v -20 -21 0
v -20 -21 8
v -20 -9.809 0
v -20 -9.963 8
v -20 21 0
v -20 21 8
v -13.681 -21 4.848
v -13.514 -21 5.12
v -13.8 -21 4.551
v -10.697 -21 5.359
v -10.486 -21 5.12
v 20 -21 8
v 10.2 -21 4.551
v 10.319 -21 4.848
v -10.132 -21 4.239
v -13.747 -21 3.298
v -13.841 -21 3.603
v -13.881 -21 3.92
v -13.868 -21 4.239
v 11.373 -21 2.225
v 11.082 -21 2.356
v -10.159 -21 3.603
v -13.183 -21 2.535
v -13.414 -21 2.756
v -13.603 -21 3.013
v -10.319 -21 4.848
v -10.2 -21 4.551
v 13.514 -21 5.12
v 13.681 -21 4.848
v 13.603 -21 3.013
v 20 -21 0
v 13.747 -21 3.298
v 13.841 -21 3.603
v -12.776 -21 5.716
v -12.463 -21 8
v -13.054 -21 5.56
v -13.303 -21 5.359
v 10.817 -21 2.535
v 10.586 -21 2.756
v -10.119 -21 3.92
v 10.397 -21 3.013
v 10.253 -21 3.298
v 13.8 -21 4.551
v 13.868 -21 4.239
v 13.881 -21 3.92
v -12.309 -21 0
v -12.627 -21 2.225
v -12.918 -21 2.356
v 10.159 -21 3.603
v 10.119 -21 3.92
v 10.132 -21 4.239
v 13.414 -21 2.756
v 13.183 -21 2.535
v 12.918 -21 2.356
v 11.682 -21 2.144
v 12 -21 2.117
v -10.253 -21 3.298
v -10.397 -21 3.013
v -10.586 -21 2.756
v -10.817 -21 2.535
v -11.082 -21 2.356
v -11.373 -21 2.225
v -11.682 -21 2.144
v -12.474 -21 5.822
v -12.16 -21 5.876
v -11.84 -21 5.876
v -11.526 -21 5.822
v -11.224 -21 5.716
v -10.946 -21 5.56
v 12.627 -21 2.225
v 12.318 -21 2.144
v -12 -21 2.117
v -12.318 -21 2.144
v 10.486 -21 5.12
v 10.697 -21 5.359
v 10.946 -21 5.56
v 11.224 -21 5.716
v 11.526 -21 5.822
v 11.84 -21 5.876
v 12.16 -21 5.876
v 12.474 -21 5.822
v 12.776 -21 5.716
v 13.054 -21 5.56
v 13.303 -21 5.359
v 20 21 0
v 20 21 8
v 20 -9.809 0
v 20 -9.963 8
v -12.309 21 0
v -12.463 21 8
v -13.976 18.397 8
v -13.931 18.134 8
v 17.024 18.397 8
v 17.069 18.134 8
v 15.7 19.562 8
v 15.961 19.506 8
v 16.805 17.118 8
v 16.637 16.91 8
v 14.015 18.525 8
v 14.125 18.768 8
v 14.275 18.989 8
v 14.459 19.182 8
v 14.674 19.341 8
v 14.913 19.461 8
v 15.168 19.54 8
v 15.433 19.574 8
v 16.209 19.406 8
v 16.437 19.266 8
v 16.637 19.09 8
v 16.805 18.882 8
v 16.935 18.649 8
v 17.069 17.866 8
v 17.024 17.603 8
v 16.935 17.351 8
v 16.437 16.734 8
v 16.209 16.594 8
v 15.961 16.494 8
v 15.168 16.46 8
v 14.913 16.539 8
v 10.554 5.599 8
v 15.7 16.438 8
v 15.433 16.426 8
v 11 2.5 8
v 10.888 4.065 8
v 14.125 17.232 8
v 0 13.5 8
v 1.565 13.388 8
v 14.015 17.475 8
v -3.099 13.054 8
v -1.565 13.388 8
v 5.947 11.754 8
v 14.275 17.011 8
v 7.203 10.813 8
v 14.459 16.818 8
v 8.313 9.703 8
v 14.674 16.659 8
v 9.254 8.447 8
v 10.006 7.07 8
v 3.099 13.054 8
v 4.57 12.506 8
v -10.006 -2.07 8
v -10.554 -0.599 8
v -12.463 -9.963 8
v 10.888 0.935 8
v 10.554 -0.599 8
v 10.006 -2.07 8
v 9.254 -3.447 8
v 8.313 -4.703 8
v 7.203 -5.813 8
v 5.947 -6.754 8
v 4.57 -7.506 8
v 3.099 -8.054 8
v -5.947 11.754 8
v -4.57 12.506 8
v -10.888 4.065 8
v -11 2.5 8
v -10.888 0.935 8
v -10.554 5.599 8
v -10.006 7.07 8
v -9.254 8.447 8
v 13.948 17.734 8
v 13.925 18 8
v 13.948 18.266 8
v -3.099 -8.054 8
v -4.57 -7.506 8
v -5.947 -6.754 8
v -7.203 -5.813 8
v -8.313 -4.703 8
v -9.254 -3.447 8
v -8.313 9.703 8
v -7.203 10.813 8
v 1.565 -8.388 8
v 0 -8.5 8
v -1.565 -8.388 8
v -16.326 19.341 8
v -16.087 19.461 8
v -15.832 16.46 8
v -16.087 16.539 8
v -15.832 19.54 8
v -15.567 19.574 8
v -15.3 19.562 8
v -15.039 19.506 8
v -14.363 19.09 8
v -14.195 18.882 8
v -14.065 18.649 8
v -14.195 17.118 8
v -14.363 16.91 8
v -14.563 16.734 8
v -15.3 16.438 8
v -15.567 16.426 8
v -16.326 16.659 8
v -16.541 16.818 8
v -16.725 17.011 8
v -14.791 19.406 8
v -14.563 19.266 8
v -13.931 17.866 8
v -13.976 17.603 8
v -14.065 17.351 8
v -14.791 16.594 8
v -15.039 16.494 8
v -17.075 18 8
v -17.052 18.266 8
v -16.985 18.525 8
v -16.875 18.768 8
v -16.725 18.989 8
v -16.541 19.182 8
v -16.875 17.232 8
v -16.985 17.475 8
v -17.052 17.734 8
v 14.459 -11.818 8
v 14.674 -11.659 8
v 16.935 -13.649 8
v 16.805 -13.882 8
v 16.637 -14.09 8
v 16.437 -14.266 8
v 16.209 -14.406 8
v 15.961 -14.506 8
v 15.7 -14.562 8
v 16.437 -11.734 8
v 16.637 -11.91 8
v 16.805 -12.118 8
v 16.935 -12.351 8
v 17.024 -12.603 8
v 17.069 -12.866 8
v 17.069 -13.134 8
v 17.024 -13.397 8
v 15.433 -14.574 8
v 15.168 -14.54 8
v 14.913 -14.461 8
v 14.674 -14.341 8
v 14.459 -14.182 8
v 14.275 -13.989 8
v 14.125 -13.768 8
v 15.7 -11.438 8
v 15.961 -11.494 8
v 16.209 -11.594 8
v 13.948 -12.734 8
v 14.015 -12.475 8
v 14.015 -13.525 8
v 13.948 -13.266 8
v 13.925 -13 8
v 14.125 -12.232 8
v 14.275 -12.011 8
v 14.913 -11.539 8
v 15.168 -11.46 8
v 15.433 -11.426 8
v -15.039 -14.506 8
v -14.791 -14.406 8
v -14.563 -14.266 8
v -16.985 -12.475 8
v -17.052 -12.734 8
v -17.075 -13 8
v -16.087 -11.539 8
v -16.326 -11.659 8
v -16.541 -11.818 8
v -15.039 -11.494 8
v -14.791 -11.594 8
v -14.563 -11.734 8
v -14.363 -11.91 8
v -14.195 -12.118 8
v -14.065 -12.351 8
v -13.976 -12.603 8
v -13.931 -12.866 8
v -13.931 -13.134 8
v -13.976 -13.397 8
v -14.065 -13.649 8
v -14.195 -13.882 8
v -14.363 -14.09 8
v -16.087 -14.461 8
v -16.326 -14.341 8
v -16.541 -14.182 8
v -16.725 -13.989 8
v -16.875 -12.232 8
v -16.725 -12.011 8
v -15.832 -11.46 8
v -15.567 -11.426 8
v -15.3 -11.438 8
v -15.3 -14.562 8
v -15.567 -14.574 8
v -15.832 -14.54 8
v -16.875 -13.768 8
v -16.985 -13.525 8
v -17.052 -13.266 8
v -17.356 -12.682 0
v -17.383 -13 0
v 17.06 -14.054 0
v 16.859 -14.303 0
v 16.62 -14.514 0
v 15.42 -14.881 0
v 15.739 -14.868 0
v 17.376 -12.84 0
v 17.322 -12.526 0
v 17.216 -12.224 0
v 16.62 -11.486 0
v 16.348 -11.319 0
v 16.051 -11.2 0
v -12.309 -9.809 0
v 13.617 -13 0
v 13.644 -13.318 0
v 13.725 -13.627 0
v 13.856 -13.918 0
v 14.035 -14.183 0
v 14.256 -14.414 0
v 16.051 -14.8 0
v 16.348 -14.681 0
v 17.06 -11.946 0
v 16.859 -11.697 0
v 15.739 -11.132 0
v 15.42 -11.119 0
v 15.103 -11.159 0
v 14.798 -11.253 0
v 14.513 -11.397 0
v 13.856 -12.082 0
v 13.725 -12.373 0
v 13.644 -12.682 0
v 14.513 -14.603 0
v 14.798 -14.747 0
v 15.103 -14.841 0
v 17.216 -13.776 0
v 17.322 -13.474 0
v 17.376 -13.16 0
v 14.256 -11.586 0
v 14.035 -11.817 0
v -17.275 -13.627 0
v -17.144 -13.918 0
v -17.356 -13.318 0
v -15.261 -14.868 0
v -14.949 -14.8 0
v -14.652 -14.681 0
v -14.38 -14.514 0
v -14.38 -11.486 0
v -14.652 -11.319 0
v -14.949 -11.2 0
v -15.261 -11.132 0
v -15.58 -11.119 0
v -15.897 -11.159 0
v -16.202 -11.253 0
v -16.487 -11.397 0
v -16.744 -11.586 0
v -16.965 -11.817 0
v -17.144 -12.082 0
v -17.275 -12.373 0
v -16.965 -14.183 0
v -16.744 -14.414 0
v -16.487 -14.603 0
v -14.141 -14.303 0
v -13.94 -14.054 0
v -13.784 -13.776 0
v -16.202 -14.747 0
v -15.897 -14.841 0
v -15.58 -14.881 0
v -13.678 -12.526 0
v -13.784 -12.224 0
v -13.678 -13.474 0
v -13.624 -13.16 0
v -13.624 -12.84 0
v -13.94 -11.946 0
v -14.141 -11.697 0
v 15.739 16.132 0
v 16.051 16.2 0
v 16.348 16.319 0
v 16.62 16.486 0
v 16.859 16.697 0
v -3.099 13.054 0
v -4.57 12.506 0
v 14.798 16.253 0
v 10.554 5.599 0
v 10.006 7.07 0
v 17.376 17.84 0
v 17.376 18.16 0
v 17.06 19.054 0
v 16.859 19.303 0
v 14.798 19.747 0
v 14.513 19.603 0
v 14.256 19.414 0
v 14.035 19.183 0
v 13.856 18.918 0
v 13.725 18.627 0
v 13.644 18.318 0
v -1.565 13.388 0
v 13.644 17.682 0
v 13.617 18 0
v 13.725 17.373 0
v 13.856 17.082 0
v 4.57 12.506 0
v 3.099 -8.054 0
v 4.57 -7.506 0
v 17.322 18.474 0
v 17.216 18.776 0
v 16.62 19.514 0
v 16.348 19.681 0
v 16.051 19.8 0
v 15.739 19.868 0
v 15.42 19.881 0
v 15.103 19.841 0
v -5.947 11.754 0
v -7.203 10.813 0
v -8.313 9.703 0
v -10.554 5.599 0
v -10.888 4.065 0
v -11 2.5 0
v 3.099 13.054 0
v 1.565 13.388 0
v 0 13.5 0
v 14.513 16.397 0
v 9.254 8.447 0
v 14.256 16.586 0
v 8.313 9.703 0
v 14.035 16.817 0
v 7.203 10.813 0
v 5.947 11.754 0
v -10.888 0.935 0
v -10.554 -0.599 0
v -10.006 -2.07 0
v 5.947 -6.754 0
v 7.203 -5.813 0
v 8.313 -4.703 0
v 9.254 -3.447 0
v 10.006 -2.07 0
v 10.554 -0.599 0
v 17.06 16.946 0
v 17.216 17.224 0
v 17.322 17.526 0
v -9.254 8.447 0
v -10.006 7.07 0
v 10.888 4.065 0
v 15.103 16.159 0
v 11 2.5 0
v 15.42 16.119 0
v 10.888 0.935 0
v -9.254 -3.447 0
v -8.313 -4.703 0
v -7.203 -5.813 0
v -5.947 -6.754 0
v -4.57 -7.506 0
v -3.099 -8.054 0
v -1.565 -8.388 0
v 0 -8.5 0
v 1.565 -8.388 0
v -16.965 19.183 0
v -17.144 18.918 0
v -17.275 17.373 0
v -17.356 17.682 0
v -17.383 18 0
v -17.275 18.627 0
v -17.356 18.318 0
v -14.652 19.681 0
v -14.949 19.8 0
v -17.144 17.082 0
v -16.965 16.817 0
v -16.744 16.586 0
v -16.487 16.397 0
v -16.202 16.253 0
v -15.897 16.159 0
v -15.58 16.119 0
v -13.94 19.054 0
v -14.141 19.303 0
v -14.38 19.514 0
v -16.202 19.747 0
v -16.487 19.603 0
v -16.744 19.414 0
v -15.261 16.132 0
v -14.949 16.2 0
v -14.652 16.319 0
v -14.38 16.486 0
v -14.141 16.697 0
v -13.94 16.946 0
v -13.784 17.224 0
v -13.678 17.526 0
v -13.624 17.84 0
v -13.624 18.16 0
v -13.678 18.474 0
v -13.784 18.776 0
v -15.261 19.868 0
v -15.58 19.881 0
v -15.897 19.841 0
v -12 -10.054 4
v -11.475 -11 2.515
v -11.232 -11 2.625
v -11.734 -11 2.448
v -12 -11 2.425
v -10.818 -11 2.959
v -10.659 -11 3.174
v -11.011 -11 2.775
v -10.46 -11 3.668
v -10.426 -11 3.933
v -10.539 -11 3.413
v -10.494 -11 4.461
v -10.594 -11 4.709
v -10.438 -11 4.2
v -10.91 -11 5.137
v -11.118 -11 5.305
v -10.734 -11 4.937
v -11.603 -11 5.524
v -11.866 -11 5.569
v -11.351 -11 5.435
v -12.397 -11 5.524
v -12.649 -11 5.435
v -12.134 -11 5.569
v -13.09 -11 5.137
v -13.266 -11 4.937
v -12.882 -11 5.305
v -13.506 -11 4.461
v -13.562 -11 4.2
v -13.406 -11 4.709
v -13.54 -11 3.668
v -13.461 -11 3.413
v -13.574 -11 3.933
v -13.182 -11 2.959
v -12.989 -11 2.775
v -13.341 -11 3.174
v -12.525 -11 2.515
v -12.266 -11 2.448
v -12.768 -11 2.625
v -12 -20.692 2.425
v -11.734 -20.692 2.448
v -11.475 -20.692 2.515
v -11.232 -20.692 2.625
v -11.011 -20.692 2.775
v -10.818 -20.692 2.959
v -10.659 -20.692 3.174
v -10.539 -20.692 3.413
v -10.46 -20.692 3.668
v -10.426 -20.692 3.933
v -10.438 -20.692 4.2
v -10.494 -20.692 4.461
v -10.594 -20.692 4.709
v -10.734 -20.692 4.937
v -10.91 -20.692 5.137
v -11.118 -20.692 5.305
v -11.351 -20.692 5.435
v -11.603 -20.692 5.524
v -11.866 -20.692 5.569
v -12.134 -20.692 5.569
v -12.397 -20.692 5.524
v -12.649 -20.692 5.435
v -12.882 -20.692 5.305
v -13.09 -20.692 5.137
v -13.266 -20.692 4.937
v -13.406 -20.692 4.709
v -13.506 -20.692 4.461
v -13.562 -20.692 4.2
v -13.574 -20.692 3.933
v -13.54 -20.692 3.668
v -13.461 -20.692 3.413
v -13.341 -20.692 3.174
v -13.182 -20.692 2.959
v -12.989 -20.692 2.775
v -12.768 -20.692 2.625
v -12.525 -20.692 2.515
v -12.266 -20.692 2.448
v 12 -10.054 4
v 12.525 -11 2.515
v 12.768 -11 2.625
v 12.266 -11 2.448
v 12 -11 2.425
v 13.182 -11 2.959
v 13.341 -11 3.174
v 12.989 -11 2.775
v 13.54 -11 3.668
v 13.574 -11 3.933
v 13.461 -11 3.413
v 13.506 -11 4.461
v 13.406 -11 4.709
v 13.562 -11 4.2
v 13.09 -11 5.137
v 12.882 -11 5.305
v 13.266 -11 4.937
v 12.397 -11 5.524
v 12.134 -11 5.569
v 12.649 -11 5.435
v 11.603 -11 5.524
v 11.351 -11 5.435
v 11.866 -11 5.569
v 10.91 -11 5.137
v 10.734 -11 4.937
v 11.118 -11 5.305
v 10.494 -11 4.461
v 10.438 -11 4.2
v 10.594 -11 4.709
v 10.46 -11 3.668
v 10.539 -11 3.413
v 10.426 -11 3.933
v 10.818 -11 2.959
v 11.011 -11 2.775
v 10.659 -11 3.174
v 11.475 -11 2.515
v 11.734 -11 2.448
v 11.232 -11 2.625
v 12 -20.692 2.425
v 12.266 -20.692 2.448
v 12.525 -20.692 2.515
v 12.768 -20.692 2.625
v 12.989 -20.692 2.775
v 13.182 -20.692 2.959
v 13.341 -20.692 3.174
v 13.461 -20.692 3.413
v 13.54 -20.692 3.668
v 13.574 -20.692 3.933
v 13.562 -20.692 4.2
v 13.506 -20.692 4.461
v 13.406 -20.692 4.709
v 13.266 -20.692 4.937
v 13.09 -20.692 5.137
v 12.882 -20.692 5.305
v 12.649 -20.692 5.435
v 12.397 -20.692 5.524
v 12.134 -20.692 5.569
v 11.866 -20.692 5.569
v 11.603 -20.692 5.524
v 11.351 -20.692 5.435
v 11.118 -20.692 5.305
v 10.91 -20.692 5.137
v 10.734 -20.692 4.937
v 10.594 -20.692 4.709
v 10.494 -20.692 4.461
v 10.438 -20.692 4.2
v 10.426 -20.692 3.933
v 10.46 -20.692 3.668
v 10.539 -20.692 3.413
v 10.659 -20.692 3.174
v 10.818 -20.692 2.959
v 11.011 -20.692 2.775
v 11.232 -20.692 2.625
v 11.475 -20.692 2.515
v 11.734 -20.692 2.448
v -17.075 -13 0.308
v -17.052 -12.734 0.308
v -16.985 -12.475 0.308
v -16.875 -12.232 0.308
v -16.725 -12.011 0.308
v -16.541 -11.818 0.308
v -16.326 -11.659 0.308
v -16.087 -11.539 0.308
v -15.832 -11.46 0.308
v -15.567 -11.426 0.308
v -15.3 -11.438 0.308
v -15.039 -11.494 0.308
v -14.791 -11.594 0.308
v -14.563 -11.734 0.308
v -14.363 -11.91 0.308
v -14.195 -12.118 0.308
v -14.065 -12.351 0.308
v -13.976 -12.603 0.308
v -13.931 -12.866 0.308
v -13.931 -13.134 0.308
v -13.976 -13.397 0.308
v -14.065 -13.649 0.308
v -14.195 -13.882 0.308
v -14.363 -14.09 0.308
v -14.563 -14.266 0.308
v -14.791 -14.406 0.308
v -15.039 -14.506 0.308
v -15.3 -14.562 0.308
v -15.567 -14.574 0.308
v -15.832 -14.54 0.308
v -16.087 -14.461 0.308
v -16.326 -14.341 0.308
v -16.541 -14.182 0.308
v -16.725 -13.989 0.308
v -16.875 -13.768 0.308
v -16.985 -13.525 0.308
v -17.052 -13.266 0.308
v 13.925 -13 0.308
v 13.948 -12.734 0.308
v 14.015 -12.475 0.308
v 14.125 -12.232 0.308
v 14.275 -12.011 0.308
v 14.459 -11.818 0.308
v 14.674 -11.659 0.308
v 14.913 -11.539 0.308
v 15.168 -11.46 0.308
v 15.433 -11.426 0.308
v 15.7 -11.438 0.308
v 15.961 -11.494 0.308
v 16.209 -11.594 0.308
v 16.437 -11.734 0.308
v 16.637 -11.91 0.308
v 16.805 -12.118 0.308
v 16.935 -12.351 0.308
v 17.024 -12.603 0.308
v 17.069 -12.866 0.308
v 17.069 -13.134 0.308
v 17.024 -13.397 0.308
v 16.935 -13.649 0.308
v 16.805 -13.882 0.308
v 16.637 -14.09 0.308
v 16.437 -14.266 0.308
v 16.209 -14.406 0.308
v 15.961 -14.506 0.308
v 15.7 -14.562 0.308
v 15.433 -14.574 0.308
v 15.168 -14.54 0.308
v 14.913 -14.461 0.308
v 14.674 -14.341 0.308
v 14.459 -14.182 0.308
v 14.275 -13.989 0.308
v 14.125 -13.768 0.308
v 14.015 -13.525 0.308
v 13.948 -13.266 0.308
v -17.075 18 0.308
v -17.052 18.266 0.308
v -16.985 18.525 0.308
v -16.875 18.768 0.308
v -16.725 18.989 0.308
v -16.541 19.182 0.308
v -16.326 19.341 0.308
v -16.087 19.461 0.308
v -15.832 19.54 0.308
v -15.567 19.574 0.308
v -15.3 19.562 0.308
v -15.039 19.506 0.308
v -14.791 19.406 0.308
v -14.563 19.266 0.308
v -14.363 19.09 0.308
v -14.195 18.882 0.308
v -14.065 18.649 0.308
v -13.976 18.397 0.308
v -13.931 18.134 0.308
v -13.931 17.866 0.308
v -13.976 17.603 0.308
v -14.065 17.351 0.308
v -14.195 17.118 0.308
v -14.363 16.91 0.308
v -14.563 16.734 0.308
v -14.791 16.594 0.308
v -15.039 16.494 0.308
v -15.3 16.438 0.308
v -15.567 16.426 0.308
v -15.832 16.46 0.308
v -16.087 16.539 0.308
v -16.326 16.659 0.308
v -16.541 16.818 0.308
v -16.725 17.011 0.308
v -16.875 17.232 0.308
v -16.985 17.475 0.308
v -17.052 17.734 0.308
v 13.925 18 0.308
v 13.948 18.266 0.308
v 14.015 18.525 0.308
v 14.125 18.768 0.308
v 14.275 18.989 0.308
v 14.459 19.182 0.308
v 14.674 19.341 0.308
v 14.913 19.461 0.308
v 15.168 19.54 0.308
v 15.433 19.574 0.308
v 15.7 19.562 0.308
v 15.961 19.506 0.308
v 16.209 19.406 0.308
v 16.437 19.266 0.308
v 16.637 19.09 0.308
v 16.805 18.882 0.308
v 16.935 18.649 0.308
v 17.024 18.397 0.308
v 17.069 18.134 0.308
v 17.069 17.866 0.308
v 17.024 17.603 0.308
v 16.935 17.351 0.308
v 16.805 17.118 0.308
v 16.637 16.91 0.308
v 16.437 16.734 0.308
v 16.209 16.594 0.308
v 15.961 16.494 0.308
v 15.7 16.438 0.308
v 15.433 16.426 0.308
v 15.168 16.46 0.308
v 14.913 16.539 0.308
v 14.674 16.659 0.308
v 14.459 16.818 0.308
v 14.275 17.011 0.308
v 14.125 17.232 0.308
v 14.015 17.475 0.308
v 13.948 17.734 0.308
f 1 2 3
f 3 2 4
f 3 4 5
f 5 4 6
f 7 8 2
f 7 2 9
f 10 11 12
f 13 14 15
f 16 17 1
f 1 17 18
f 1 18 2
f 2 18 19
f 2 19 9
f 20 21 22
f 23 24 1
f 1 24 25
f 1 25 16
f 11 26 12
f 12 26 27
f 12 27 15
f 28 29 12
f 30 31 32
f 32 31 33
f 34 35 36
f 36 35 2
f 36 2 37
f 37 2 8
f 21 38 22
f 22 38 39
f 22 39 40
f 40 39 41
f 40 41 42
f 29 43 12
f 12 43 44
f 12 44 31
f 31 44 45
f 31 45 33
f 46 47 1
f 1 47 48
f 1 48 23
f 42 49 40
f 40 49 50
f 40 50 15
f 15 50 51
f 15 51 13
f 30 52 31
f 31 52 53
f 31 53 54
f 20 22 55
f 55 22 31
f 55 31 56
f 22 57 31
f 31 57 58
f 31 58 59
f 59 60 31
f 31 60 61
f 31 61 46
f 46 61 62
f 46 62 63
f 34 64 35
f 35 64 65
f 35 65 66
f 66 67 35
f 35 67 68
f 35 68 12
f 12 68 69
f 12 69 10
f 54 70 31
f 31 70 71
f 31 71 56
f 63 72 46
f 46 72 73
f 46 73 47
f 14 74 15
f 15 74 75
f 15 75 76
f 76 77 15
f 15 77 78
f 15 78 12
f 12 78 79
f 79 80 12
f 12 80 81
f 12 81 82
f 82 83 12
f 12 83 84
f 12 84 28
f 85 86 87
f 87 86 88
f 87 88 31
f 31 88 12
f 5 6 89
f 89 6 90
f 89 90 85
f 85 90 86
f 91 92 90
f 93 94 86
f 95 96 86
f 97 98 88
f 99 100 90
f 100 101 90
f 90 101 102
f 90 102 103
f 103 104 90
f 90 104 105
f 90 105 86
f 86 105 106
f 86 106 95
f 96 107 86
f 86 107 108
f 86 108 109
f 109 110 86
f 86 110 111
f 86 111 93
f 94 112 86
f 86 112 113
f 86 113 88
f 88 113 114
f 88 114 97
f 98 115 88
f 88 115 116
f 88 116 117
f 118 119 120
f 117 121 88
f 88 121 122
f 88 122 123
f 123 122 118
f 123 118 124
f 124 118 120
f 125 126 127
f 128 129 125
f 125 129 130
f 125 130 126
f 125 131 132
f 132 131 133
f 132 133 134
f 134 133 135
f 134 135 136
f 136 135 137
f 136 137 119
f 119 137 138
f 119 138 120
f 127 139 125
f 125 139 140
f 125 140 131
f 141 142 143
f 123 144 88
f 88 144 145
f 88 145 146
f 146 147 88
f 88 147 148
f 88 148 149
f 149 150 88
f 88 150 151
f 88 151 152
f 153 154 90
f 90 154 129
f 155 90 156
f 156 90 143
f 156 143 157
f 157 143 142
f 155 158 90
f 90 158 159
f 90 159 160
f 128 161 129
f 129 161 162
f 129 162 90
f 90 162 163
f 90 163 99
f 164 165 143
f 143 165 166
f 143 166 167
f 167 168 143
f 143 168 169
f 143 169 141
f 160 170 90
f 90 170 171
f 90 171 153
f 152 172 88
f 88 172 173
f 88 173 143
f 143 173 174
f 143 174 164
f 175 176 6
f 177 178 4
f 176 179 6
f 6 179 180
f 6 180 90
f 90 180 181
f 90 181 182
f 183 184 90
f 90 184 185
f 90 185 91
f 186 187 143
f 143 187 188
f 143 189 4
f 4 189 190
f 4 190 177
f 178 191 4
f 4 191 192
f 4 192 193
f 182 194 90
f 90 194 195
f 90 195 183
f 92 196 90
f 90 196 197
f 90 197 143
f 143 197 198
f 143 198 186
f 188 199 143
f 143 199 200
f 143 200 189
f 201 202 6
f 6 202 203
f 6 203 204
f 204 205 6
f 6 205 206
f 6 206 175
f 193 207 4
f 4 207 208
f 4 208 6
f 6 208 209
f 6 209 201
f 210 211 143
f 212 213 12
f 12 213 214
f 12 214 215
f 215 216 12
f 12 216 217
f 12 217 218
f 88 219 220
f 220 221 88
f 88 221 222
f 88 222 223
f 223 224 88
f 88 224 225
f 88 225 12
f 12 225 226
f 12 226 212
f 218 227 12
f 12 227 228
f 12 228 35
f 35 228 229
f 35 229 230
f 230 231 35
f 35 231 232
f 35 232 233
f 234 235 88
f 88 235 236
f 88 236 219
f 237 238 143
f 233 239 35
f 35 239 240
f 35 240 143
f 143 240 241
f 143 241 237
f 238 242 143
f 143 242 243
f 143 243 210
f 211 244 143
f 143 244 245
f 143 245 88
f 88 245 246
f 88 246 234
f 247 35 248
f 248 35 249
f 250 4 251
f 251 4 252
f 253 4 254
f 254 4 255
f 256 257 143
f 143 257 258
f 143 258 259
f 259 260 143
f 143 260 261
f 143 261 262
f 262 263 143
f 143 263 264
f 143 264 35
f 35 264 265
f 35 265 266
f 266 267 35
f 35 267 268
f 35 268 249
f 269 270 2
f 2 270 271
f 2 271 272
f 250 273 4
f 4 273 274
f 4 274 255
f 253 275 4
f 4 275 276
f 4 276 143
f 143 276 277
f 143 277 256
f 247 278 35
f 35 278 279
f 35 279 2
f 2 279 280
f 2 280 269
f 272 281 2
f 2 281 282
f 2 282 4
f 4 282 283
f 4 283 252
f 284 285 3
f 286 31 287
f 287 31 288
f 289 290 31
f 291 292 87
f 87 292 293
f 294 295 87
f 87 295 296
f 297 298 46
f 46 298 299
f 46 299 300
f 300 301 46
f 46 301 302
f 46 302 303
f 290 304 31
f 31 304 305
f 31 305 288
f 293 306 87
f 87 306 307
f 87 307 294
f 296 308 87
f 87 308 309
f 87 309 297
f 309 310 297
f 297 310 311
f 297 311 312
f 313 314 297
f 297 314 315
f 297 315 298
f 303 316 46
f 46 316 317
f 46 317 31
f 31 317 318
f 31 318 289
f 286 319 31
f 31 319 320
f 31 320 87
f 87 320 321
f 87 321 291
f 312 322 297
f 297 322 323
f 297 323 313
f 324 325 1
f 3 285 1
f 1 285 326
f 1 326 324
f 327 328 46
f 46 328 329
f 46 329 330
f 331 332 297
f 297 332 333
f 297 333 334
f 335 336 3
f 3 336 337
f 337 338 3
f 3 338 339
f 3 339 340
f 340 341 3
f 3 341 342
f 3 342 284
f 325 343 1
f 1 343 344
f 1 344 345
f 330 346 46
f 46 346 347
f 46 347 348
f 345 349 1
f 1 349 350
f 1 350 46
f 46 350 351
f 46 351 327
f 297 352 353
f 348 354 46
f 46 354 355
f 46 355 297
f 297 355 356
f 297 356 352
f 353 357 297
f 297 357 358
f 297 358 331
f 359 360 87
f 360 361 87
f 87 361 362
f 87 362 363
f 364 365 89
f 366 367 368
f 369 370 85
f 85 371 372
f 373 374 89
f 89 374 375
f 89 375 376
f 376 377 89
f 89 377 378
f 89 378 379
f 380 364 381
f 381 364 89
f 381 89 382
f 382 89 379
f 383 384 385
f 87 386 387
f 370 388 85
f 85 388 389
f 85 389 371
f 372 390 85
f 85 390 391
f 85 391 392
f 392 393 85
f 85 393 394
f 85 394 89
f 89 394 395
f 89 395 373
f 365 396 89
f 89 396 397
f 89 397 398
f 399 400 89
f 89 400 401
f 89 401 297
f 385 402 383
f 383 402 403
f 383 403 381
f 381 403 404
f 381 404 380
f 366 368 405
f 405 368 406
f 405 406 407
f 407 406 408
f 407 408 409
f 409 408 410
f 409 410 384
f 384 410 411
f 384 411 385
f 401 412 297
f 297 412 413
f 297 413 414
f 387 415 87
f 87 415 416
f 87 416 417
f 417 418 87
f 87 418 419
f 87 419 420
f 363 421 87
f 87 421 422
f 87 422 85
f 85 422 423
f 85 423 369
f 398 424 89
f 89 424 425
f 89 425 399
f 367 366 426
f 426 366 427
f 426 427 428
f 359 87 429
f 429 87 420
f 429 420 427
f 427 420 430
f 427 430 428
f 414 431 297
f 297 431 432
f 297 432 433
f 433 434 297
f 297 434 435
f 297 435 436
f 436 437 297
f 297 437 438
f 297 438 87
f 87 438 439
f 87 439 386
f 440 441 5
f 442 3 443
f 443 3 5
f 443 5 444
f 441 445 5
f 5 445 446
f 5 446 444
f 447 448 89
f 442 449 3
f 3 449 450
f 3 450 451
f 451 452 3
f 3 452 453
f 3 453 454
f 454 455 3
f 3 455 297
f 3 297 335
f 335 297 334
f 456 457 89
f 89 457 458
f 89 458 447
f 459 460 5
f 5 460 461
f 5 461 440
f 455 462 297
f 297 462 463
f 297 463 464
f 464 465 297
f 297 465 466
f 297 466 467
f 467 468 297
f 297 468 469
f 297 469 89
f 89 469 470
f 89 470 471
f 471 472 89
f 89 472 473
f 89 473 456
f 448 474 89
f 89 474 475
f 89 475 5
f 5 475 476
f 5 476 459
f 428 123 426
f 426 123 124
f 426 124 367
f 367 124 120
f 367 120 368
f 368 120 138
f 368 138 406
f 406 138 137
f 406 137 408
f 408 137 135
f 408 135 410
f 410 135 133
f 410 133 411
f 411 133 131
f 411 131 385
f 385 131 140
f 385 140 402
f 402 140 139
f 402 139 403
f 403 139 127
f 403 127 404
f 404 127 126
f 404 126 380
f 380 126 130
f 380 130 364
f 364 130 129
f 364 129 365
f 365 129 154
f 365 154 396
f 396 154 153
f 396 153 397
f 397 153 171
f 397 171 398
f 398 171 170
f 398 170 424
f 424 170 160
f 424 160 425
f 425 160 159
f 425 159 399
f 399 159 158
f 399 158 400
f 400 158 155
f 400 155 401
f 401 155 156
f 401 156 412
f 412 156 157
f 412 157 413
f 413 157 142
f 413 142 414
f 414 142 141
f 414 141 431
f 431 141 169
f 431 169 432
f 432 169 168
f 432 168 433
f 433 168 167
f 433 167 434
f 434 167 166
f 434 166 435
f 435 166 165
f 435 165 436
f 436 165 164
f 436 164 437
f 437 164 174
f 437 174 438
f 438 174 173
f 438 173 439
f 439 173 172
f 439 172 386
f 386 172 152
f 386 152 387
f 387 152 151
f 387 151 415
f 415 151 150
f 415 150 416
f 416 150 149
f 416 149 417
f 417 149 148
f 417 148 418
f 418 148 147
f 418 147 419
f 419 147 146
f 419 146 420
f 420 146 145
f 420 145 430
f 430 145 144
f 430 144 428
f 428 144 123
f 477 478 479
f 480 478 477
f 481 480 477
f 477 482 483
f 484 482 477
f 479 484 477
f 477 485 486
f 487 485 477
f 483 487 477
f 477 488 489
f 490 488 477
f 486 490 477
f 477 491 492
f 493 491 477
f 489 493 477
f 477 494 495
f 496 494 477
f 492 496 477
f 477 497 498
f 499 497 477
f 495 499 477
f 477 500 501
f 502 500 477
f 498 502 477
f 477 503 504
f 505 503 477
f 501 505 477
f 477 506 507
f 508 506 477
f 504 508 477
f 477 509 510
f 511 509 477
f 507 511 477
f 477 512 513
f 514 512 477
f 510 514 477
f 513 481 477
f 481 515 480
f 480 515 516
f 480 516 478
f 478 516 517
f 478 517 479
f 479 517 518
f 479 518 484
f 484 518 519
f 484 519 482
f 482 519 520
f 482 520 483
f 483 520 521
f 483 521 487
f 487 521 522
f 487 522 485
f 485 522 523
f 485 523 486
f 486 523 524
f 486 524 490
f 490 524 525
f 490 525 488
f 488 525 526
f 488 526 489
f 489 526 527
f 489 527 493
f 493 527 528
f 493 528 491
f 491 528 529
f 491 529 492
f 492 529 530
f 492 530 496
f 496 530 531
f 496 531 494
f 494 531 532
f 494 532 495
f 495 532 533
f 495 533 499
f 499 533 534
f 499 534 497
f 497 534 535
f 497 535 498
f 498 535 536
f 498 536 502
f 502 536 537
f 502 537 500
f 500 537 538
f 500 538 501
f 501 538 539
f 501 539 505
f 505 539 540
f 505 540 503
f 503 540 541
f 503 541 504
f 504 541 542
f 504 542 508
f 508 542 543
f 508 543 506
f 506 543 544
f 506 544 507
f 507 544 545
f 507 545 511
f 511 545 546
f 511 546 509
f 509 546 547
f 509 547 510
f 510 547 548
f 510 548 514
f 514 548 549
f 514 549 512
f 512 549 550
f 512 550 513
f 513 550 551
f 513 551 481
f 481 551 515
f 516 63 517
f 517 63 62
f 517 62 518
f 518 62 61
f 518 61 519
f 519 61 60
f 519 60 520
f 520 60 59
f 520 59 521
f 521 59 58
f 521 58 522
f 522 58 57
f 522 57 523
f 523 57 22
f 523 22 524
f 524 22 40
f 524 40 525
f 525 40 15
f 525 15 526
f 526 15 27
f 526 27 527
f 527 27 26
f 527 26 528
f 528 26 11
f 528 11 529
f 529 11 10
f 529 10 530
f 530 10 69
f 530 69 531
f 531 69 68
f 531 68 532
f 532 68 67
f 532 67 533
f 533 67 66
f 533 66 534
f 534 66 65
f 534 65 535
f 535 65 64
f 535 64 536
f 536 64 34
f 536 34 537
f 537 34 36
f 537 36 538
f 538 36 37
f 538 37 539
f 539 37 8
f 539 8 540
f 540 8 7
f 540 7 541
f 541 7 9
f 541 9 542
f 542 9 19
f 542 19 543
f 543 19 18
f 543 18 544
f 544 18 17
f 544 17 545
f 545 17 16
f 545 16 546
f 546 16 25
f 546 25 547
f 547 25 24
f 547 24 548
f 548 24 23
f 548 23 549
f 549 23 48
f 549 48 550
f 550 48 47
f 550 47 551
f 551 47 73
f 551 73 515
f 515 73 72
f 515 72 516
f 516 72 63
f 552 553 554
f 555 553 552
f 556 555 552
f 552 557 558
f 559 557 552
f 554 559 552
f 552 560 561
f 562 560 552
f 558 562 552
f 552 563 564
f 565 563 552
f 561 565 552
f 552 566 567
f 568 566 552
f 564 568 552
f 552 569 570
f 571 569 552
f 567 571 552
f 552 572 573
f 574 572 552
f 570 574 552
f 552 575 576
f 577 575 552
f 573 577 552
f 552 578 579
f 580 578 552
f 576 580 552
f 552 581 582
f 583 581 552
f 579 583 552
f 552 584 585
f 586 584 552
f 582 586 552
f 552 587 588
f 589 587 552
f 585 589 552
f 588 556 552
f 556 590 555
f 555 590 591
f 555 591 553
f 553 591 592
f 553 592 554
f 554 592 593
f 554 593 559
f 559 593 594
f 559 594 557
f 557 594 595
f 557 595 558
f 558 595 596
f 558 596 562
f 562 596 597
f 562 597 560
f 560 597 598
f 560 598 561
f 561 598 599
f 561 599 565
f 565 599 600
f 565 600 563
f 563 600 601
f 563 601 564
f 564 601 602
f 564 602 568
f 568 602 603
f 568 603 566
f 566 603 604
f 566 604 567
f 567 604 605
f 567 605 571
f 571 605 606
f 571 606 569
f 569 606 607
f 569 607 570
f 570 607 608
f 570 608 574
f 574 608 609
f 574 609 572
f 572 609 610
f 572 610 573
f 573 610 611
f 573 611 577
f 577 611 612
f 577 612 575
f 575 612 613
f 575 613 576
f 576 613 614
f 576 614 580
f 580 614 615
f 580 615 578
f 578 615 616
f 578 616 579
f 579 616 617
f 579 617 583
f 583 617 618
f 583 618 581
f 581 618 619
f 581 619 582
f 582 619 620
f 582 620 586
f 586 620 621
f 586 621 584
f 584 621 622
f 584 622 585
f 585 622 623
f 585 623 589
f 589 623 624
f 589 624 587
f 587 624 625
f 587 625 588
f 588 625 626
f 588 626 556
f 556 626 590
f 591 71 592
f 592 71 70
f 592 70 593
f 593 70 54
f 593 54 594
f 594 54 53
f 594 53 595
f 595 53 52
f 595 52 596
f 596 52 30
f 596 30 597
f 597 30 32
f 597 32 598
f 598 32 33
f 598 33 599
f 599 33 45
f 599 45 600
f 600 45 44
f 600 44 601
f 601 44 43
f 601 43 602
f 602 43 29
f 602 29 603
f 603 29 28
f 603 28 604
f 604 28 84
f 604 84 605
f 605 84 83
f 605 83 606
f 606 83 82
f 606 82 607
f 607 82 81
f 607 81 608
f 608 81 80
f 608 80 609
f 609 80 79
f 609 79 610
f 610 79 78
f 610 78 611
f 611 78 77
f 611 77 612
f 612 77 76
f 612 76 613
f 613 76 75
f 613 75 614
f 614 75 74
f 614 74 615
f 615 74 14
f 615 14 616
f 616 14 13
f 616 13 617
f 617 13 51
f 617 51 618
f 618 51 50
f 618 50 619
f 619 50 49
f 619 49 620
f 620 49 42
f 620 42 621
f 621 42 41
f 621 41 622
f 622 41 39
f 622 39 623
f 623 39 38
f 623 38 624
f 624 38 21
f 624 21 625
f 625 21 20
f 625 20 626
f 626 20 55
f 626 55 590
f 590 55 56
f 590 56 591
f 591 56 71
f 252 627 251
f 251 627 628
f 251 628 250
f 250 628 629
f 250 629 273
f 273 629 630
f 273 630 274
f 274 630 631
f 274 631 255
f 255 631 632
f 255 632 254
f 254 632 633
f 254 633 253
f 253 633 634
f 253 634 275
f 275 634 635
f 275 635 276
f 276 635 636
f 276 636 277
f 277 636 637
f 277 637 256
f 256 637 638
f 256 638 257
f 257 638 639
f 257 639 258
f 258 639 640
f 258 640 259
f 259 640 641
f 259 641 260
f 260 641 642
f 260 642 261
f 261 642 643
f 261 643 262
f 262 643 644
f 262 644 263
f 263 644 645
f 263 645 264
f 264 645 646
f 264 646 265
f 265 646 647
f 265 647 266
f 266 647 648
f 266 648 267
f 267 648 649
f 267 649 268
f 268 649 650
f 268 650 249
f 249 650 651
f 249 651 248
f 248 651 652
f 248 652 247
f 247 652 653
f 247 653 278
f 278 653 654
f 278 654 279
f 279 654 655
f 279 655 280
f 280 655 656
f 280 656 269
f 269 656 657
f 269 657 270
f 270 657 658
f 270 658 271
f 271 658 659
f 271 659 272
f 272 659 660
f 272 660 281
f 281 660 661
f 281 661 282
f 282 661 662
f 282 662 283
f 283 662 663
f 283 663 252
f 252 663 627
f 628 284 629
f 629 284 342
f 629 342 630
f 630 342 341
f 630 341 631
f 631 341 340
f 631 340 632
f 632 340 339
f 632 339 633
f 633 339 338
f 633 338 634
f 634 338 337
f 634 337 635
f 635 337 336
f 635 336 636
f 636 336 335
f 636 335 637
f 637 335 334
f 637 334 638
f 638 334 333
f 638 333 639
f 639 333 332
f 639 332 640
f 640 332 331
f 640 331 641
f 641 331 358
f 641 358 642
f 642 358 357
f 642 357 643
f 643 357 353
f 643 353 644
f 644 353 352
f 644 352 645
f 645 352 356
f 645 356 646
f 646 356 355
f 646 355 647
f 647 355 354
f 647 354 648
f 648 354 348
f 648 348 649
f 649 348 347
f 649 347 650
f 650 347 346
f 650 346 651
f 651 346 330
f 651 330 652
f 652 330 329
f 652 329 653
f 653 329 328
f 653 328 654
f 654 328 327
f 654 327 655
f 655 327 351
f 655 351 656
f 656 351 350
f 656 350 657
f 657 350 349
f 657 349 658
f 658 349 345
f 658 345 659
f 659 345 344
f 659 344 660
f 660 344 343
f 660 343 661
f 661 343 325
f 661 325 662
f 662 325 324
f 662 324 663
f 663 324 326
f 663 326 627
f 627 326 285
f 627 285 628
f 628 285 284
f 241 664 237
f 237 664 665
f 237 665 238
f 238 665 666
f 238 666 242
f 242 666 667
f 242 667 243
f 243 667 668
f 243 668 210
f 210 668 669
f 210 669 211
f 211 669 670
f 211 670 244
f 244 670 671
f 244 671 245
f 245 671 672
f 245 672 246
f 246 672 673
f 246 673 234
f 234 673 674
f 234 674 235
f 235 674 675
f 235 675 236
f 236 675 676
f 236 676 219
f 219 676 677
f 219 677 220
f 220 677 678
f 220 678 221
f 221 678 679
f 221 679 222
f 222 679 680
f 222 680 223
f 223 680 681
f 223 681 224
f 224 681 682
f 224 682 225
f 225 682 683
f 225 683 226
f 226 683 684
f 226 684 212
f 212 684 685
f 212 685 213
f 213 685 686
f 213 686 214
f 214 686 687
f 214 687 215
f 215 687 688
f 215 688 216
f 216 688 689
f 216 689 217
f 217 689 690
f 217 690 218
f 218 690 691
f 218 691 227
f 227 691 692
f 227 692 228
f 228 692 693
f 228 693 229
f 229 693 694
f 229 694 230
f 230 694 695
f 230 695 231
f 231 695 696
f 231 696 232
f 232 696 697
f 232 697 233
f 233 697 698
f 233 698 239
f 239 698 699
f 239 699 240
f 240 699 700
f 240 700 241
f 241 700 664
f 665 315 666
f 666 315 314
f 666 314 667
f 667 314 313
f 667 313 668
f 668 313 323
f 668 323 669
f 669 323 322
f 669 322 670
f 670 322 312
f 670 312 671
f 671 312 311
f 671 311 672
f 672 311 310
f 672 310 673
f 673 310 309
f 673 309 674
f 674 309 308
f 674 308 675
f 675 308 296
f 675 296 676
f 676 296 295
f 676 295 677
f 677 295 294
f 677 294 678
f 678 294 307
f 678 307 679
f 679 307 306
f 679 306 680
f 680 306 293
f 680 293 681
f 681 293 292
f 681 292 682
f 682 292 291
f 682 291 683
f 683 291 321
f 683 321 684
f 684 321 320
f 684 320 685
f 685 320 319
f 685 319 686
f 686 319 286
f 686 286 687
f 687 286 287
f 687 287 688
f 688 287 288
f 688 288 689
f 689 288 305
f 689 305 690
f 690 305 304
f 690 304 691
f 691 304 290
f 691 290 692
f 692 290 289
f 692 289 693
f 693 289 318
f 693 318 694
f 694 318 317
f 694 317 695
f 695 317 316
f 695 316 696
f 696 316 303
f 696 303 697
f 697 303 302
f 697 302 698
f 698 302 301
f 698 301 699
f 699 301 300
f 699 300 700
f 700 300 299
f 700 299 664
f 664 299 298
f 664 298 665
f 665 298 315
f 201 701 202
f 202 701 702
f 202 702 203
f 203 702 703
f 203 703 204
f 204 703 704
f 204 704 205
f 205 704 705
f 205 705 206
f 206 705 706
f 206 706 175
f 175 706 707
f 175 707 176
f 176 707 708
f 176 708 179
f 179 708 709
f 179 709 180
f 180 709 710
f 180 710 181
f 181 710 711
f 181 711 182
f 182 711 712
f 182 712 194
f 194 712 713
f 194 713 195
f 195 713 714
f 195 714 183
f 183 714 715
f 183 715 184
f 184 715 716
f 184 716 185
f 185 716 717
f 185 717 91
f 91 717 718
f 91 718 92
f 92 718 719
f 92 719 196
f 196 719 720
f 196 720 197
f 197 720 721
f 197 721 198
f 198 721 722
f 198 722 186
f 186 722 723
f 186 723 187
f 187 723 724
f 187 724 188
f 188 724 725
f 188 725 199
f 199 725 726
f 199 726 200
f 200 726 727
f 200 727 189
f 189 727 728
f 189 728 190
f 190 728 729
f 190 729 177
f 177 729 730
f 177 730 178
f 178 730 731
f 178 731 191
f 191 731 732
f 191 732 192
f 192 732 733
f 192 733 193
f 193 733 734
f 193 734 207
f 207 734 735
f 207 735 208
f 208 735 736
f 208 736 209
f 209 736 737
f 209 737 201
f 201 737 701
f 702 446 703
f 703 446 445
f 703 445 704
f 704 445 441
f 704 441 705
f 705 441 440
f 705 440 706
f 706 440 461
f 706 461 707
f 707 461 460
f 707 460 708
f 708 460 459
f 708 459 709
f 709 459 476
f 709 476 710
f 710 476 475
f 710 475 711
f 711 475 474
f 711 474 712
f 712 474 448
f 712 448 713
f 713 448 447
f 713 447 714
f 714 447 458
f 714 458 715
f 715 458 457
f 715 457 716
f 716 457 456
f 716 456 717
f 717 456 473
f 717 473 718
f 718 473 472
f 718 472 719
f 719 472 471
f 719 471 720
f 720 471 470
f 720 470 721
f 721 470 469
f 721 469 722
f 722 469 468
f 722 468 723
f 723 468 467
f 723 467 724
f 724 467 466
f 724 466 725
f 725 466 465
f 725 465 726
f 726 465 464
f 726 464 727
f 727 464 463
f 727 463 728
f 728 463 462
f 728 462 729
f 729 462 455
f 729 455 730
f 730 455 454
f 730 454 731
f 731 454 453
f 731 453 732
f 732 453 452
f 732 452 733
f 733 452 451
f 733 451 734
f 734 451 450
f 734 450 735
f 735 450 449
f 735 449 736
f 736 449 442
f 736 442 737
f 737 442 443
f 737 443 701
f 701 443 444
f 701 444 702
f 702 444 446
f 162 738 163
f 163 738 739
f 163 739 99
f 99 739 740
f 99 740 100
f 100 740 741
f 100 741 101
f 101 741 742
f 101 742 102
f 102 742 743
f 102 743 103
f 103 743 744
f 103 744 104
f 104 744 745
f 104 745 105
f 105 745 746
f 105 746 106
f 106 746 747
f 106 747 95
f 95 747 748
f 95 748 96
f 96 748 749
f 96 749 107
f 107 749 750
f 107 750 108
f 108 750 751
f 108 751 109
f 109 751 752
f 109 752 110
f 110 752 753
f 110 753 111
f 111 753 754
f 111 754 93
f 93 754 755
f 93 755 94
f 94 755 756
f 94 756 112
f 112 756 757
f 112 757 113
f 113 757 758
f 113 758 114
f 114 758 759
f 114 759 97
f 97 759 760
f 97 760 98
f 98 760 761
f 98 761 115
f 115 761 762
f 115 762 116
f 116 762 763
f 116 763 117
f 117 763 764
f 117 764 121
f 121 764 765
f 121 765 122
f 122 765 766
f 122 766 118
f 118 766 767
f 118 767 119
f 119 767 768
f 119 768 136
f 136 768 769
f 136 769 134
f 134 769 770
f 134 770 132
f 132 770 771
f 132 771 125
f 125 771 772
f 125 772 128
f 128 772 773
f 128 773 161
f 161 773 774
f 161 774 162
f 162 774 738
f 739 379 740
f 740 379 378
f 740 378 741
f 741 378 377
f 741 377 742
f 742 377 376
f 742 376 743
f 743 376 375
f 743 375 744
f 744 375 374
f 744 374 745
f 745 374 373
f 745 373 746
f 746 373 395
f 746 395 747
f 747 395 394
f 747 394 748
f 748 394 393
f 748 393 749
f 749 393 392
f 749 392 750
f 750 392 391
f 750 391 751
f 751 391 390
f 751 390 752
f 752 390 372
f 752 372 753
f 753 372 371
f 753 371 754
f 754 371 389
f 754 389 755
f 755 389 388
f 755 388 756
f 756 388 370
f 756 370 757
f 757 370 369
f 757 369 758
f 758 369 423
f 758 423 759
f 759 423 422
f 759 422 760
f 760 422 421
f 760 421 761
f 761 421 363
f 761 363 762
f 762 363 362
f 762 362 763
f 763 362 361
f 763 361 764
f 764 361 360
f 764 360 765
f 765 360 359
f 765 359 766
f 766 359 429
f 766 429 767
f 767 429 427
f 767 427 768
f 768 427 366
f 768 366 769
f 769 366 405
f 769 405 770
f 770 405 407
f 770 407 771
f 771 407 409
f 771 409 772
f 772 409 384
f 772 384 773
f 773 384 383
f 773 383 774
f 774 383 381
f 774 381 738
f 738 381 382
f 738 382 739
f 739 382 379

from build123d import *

# Parameters (mm, degrees)
ESBO_O1_W                                         = 40
ESBO_O1_H                                         = 42
RESSALTO_EXTRUS_O1_DEPTH                          = 8
ESBO_O2_R                                         = 11
CORTE_EXTRUS_O1_DEPTH                             = 9
FURO_ROSCADO_PARA_CONDU_TE_DE_M3X0_51_D           = 3.15
FURO_ROSCADO_PARA_CONDU_TE_DE_M3X0_51_DEPTH       = 10
FURO_ROSCADO_PARA_CONDU_TE_DE_M3X0_51_CSINK_D     = 3.766
FURO_ROSCADO_PARA_CONDU_TE_DE_M3X0_51_CSINK_ANGLE = 90
FURO_ROSCADO_PARA_CONDU_TE_DE_M3X0_51_TIP         = 0.946355475
FURO_ROSCADO_PARA_CONDU_TE_DE_M3X0_52_D           = 3.15
FURO_ROSCADO_PARA_CONDU_TE_DE_M3X0_52_CSINK_D     = 3.766
FURO_ROSCADO_PARA_CONDU_TE_DE_M3X0_52_CSINK_ANGLE = 90


with BuildPart() as part:
    # Esboço1 → Ressalto-extrusão1 (new body)
    with BuildSketch(Plane.XY):
        Rectangle(ESBO_O1_W, ESBO_O1_H)
    extrude(amount=RESSALTO_EXTRUS_O1_DEPTH)

    # Esboço2 → Corte-extrusão1 (cut, through all)
    with BuildSketch(Plane.XY.offset(8)):
        with Locations((0, 2.5)):
            Circle(ESBO_O2_R)
    extrude(amount=-CORTE_EXTRUS_O1_DEPTH, mode=Mode.SUBTRACT)

    # Furo roscado para conduíte de M3x0.51
    with Locations(Plane(origin=(0, -21, 0), x_dir=(-1, 0, 0), z_dir=(0, -1, 0))):
        with Locations((-12, -4), (12, -4)):
            CounterSinkHole(FURO_ROSCADO_PARA_CONDU_TE_DE_M3X0_51_D / 2, FURO_ROSCADO_PARA_CONDU_TE_DE_M3X0_51_CSINK_D / 2, depth=FURO_ROSCADO_PARA_CONDU_TE_DE_M3X0_51_DEPTH, counter_sink_angle=FURO_ROSCADO_PARA_CONDU_TE_DE_M3X0_51_CSINK_ANGLE)
            with Locations((0, 0, -(FURO_ROSCADO_PARA_CONDU_TE_DE_M3X0_51_DEPTH + FURO_ROSCADO_PARA_CONDU_TE_DE_M3X0_51_TIP / 2))):  # 118° drill point
                Cone(0, FURO_ROSCADO_PARA_CONDU_TE_DE_M3X0_51_D / 2, FURO_ROSCADO_PARA_CONDU_TE_DE_M3X0_51_TIP, mode=Mode.SUBTRACT)

    # Furo roscado para conduíte de M3x0.52 (through all)
    with Locations(Plane(origin=(0, 0, 0), x_dir=(-1, 0, 0), z_dir=(0, 0, -1))):
        with Locations((-15.5, 18), (15.5, 18), (-15.5, -13), (15.5, -13)):
            CounterSinkHole(FURO_ROSCADO_PARA_CONDU_TE_DE_M3X0_52_D / 2, FURO_ROSCADO_PARA_CONDU_TE_DE_M3X0_52_CSINK_D / 2, counter_sink_angle=FURO_ROSCADO_PARA_CONDU_TE_DE_M3X0_52_CSINK_ANGLE)


solid = part.part
